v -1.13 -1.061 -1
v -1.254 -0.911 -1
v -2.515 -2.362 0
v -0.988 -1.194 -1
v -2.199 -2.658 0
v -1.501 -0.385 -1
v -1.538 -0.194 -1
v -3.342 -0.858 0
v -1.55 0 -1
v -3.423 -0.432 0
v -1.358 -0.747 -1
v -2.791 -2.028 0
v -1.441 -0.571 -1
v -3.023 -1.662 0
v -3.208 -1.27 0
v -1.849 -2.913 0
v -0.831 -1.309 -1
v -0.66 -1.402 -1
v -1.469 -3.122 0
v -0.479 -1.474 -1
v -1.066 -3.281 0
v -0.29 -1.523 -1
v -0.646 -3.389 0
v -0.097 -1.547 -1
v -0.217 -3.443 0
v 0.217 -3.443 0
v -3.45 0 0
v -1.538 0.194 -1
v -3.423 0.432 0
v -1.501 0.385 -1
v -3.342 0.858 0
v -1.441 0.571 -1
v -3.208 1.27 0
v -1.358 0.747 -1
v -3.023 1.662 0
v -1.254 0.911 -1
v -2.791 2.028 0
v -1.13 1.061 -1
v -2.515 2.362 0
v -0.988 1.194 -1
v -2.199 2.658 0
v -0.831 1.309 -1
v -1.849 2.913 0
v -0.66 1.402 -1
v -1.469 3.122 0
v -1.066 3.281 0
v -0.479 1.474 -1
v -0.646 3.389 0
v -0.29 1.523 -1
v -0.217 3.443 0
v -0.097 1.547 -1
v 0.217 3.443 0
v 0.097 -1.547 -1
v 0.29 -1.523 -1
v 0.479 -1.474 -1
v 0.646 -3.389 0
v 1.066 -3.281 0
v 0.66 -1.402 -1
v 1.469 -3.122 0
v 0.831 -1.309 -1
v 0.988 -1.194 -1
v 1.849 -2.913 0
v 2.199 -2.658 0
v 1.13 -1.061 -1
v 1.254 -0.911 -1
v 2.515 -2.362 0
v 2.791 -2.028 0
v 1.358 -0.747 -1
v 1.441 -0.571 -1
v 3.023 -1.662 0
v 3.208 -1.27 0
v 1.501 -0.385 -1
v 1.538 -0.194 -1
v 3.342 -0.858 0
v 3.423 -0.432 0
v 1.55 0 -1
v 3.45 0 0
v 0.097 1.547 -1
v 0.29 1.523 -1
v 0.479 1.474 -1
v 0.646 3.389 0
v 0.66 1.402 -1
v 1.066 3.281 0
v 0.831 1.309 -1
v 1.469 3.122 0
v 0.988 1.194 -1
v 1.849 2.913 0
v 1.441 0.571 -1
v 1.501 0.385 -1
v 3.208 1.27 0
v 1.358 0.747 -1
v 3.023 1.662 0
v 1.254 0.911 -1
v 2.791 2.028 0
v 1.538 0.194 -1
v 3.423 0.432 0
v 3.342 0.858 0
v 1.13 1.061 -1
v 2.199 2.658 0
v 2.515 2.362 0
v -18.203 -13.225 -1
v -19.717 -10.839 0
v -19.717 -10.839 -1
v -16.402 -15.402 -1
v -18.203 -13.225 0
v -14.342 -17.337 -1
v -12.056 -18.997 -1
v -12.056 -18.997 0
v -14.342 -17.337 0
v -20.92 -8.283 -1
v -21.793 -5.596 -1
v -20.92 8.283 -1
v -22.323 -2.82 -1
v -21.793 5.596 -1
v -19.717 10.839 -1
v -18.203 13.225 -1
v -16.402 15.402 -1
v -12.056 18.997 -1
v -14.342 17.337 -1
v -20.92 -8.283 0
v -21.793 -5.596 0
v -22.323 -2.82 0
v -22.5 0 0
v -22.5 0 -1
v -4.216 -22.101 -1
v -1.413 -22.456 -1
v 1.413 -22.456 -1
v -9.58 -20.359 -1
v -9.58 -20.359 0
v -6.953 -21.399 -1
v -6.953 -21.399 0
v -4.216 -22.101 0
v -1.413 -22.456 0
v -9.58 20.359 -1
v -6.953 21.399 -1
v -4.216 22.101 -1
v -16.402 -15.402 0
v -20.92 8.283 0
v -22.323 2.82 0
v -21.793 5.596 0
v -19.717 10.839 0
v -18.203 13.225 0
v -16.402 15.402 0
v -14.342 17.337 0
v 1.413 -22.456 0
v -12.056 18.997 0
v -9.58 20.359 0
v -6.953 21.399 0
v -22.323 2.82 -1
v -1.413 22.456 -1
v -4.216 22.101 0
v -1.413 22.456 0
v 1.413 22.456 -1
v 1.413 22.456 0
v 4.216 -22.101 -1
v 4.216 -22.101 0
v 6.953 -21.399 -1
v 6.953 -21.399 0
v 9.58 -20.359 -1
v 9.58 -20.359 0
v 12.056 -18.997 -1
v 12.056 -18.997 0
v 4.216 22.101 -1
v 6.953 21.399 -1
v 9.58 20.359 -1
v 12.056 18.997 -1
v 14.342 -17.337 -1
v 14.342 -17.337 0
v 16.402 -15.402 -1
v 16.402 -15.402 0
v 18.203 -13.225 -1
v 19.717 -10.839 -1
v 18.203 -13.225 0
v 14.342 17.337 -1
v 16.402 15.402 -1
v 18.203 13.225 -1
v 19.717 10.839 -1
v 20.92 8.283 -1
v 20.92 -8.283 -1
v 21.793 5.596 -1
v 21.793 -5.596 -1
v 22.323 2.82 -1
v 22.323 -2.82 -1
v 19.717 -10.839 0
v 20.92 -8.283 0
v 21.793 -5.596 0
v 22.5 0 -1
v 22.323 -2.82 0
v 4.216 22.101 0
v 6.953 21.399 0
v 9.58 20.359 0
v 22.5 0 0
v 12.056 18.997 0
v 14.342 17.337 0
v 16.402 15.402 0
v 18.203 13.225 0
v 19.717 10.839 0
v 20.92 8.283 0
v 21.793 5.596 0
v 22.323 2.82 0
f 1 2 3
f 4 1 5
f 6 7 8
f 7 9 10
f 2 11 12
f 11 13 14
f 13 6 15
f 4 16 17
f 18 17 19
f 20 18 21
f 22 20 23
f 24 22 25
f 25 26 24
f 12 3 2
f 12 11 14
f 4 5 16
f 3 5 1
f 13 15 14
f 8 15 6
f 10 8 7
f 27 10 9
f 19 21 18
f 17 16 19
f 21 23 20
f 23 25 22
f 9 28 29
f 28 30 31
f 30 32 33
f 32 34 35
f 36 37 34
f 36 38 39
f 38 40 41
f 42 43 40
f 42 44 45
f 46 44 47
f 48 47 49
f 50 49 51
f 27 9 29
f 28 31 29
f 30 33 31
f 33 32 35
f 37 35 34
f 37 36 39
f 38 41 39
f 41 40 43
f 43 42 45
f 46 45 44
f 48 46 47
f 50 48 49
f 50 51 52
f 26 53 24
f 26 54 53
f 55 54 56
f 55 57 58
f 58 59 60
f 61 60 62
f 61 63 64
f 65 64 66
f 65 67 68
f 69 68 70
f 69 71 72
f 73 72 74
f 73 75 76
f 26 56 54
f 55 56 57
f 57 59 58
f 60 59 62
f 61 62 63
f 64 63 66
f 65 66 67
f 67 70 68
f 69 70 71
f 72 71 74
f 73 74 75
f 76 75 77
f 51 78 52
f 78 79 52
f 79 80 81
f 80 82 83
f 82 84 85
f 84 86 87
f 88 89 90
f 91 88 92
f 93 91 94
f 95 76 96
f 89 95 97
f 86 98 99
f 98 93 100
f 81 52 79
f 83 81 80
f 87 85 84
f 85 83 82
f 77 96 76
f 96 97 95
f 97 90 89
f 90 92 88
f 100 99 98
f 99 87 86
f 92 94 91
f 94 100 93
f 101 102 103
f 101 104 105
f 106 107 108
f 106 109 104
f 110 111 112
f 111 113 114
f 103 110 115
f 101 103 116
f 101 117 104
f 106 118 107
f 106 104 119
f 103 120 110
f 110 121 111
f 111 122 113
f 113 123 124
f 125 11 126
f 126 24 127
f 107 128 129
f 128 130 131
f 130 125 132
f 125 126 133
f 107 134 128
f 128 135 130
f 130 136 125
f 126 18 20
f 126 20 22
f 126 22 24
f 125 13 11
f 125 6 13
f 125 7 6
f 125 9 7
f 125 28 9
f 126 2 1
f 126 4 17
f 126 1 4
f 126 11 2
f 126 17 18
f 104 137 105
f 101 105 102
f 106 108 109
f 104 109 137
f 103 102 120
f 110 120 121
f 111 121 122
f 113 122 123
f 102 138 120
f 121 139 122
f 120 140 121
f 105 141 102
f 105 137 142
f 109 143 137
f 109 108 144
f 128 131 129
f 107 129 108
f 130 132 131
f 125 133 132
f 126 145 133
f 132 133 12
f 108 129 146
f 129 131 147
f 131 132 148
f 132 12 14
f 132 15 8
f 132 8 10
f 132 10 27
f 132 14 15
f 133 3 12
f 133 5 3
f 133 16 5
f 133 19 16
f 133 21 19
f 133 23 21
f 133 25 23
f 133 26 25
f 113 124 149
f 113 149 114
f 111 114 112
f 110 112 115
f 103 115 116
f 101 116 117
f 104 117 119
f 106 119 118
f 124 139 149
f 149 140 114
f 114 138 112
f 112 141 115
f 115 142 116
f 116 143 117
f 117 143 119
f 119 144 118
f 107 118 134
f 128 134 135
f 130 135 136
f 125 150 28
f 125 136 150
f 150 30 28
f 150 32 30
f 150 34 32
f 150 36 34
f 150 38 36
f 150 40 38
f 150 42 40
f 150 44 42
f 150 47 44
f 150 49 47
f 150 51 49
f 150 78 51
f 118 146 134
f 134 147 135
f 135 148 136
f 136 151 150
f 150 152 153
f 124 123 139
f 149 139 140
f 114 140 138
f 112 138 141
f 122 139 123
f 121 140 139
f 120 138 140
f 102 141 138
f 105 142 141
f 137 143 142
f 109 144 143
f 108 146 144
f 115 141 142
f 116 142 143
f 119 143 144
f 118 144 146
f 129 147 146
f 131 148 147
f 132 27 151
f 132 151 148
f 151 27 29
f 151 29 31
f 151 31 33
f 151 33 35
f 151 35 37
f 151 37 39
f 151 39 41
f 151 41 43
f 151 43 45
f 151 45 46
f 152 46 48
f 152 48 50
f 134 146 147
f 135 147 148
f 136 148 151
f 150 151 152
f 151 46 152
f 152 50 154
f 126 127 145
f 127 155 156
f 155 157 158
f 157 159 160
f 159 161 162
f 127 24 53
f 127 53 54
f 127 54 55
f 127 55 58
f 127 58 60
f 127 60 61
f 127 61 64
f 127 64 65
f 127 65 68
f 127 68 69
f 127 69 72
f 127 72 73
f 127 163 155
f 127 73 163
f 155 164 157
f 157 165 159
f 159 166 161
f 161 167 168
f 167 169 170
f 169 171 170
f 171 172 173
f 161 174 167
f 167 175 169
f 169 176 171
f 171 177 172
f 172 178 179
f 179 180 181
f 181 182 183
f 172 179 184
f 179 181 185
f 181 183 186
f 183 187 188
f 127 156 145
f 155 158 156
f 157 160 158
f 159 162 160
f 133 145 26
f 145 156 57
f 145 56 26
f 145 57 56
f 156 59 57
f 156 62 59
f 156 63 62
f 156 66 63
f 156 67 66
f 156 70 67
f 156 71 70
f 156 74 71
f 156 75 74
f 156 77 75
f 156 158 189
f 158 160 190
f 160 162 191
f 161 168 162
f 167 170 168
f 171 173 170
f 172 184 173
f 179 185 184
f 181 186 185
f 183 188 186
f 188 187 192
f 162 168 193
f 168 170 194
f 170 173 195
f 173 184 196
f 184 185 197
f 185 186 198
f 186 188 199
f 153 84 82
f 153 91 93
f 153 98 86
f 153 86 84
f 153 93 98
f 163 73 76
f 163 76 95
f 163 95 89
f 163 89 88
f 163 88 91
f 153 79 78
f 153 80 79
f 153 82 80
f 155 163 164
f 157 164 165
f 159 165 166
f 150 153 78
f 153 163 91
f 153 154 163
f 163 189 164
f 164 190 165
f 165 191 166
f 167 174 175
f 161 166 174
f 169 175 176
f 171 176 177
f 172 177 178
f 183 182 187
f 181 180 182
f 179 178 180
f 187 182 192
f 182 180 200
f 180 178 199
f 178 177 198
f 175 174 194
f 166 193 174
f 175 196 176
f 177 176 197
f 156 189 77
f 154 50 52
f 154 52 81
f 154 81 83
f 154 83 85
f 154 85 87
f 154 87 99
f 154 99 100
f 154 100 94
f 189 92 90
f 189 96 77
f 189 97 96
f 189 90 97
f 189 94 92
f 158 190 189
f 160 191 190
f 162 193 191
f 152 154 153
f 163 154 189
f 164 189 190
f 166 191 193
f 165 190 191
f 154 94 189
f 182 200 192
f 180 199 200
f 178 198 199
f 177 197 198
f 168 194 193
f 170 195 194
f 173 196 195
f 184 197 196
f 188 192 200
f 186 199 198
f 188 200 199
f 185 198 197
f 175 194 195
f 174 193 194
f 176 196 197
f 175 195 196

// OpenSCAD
$fn = 50;


difference() {
	union() {
		translate(v = [0, 0, -1.0000000000]) {
			cylinder(h = 1.0000000000, r = 22.5000000000);
		}
	}
	union() {
		translate(v = [0, 0, 0]) {
			rotate(a = [0, 0, 0]) {
				difference() {
					union() {
						translate(v = [0, 0, -4.0000000000]) {
							cylinder(h = 4.0000000000, r = 1.2500000000);
						}
						translate(v = [0, 0, -1.0000000000]) {
							cylinder(h = 1.0000000000, r1 = 1.5500000000, r2 = 3.4500000000);
						}
						translate(v = [0, 0, -4.0000000000]) {
							cylinder(h = 4.0000000000, r = 1.5500000000);
						}
						translate(v = [0, 0, -4.0000000000]) {
							cylinder(h = 4.0000000000, r = 1.2500000000);
						}
					}
					union();
				}
			}
		}
	}
}
